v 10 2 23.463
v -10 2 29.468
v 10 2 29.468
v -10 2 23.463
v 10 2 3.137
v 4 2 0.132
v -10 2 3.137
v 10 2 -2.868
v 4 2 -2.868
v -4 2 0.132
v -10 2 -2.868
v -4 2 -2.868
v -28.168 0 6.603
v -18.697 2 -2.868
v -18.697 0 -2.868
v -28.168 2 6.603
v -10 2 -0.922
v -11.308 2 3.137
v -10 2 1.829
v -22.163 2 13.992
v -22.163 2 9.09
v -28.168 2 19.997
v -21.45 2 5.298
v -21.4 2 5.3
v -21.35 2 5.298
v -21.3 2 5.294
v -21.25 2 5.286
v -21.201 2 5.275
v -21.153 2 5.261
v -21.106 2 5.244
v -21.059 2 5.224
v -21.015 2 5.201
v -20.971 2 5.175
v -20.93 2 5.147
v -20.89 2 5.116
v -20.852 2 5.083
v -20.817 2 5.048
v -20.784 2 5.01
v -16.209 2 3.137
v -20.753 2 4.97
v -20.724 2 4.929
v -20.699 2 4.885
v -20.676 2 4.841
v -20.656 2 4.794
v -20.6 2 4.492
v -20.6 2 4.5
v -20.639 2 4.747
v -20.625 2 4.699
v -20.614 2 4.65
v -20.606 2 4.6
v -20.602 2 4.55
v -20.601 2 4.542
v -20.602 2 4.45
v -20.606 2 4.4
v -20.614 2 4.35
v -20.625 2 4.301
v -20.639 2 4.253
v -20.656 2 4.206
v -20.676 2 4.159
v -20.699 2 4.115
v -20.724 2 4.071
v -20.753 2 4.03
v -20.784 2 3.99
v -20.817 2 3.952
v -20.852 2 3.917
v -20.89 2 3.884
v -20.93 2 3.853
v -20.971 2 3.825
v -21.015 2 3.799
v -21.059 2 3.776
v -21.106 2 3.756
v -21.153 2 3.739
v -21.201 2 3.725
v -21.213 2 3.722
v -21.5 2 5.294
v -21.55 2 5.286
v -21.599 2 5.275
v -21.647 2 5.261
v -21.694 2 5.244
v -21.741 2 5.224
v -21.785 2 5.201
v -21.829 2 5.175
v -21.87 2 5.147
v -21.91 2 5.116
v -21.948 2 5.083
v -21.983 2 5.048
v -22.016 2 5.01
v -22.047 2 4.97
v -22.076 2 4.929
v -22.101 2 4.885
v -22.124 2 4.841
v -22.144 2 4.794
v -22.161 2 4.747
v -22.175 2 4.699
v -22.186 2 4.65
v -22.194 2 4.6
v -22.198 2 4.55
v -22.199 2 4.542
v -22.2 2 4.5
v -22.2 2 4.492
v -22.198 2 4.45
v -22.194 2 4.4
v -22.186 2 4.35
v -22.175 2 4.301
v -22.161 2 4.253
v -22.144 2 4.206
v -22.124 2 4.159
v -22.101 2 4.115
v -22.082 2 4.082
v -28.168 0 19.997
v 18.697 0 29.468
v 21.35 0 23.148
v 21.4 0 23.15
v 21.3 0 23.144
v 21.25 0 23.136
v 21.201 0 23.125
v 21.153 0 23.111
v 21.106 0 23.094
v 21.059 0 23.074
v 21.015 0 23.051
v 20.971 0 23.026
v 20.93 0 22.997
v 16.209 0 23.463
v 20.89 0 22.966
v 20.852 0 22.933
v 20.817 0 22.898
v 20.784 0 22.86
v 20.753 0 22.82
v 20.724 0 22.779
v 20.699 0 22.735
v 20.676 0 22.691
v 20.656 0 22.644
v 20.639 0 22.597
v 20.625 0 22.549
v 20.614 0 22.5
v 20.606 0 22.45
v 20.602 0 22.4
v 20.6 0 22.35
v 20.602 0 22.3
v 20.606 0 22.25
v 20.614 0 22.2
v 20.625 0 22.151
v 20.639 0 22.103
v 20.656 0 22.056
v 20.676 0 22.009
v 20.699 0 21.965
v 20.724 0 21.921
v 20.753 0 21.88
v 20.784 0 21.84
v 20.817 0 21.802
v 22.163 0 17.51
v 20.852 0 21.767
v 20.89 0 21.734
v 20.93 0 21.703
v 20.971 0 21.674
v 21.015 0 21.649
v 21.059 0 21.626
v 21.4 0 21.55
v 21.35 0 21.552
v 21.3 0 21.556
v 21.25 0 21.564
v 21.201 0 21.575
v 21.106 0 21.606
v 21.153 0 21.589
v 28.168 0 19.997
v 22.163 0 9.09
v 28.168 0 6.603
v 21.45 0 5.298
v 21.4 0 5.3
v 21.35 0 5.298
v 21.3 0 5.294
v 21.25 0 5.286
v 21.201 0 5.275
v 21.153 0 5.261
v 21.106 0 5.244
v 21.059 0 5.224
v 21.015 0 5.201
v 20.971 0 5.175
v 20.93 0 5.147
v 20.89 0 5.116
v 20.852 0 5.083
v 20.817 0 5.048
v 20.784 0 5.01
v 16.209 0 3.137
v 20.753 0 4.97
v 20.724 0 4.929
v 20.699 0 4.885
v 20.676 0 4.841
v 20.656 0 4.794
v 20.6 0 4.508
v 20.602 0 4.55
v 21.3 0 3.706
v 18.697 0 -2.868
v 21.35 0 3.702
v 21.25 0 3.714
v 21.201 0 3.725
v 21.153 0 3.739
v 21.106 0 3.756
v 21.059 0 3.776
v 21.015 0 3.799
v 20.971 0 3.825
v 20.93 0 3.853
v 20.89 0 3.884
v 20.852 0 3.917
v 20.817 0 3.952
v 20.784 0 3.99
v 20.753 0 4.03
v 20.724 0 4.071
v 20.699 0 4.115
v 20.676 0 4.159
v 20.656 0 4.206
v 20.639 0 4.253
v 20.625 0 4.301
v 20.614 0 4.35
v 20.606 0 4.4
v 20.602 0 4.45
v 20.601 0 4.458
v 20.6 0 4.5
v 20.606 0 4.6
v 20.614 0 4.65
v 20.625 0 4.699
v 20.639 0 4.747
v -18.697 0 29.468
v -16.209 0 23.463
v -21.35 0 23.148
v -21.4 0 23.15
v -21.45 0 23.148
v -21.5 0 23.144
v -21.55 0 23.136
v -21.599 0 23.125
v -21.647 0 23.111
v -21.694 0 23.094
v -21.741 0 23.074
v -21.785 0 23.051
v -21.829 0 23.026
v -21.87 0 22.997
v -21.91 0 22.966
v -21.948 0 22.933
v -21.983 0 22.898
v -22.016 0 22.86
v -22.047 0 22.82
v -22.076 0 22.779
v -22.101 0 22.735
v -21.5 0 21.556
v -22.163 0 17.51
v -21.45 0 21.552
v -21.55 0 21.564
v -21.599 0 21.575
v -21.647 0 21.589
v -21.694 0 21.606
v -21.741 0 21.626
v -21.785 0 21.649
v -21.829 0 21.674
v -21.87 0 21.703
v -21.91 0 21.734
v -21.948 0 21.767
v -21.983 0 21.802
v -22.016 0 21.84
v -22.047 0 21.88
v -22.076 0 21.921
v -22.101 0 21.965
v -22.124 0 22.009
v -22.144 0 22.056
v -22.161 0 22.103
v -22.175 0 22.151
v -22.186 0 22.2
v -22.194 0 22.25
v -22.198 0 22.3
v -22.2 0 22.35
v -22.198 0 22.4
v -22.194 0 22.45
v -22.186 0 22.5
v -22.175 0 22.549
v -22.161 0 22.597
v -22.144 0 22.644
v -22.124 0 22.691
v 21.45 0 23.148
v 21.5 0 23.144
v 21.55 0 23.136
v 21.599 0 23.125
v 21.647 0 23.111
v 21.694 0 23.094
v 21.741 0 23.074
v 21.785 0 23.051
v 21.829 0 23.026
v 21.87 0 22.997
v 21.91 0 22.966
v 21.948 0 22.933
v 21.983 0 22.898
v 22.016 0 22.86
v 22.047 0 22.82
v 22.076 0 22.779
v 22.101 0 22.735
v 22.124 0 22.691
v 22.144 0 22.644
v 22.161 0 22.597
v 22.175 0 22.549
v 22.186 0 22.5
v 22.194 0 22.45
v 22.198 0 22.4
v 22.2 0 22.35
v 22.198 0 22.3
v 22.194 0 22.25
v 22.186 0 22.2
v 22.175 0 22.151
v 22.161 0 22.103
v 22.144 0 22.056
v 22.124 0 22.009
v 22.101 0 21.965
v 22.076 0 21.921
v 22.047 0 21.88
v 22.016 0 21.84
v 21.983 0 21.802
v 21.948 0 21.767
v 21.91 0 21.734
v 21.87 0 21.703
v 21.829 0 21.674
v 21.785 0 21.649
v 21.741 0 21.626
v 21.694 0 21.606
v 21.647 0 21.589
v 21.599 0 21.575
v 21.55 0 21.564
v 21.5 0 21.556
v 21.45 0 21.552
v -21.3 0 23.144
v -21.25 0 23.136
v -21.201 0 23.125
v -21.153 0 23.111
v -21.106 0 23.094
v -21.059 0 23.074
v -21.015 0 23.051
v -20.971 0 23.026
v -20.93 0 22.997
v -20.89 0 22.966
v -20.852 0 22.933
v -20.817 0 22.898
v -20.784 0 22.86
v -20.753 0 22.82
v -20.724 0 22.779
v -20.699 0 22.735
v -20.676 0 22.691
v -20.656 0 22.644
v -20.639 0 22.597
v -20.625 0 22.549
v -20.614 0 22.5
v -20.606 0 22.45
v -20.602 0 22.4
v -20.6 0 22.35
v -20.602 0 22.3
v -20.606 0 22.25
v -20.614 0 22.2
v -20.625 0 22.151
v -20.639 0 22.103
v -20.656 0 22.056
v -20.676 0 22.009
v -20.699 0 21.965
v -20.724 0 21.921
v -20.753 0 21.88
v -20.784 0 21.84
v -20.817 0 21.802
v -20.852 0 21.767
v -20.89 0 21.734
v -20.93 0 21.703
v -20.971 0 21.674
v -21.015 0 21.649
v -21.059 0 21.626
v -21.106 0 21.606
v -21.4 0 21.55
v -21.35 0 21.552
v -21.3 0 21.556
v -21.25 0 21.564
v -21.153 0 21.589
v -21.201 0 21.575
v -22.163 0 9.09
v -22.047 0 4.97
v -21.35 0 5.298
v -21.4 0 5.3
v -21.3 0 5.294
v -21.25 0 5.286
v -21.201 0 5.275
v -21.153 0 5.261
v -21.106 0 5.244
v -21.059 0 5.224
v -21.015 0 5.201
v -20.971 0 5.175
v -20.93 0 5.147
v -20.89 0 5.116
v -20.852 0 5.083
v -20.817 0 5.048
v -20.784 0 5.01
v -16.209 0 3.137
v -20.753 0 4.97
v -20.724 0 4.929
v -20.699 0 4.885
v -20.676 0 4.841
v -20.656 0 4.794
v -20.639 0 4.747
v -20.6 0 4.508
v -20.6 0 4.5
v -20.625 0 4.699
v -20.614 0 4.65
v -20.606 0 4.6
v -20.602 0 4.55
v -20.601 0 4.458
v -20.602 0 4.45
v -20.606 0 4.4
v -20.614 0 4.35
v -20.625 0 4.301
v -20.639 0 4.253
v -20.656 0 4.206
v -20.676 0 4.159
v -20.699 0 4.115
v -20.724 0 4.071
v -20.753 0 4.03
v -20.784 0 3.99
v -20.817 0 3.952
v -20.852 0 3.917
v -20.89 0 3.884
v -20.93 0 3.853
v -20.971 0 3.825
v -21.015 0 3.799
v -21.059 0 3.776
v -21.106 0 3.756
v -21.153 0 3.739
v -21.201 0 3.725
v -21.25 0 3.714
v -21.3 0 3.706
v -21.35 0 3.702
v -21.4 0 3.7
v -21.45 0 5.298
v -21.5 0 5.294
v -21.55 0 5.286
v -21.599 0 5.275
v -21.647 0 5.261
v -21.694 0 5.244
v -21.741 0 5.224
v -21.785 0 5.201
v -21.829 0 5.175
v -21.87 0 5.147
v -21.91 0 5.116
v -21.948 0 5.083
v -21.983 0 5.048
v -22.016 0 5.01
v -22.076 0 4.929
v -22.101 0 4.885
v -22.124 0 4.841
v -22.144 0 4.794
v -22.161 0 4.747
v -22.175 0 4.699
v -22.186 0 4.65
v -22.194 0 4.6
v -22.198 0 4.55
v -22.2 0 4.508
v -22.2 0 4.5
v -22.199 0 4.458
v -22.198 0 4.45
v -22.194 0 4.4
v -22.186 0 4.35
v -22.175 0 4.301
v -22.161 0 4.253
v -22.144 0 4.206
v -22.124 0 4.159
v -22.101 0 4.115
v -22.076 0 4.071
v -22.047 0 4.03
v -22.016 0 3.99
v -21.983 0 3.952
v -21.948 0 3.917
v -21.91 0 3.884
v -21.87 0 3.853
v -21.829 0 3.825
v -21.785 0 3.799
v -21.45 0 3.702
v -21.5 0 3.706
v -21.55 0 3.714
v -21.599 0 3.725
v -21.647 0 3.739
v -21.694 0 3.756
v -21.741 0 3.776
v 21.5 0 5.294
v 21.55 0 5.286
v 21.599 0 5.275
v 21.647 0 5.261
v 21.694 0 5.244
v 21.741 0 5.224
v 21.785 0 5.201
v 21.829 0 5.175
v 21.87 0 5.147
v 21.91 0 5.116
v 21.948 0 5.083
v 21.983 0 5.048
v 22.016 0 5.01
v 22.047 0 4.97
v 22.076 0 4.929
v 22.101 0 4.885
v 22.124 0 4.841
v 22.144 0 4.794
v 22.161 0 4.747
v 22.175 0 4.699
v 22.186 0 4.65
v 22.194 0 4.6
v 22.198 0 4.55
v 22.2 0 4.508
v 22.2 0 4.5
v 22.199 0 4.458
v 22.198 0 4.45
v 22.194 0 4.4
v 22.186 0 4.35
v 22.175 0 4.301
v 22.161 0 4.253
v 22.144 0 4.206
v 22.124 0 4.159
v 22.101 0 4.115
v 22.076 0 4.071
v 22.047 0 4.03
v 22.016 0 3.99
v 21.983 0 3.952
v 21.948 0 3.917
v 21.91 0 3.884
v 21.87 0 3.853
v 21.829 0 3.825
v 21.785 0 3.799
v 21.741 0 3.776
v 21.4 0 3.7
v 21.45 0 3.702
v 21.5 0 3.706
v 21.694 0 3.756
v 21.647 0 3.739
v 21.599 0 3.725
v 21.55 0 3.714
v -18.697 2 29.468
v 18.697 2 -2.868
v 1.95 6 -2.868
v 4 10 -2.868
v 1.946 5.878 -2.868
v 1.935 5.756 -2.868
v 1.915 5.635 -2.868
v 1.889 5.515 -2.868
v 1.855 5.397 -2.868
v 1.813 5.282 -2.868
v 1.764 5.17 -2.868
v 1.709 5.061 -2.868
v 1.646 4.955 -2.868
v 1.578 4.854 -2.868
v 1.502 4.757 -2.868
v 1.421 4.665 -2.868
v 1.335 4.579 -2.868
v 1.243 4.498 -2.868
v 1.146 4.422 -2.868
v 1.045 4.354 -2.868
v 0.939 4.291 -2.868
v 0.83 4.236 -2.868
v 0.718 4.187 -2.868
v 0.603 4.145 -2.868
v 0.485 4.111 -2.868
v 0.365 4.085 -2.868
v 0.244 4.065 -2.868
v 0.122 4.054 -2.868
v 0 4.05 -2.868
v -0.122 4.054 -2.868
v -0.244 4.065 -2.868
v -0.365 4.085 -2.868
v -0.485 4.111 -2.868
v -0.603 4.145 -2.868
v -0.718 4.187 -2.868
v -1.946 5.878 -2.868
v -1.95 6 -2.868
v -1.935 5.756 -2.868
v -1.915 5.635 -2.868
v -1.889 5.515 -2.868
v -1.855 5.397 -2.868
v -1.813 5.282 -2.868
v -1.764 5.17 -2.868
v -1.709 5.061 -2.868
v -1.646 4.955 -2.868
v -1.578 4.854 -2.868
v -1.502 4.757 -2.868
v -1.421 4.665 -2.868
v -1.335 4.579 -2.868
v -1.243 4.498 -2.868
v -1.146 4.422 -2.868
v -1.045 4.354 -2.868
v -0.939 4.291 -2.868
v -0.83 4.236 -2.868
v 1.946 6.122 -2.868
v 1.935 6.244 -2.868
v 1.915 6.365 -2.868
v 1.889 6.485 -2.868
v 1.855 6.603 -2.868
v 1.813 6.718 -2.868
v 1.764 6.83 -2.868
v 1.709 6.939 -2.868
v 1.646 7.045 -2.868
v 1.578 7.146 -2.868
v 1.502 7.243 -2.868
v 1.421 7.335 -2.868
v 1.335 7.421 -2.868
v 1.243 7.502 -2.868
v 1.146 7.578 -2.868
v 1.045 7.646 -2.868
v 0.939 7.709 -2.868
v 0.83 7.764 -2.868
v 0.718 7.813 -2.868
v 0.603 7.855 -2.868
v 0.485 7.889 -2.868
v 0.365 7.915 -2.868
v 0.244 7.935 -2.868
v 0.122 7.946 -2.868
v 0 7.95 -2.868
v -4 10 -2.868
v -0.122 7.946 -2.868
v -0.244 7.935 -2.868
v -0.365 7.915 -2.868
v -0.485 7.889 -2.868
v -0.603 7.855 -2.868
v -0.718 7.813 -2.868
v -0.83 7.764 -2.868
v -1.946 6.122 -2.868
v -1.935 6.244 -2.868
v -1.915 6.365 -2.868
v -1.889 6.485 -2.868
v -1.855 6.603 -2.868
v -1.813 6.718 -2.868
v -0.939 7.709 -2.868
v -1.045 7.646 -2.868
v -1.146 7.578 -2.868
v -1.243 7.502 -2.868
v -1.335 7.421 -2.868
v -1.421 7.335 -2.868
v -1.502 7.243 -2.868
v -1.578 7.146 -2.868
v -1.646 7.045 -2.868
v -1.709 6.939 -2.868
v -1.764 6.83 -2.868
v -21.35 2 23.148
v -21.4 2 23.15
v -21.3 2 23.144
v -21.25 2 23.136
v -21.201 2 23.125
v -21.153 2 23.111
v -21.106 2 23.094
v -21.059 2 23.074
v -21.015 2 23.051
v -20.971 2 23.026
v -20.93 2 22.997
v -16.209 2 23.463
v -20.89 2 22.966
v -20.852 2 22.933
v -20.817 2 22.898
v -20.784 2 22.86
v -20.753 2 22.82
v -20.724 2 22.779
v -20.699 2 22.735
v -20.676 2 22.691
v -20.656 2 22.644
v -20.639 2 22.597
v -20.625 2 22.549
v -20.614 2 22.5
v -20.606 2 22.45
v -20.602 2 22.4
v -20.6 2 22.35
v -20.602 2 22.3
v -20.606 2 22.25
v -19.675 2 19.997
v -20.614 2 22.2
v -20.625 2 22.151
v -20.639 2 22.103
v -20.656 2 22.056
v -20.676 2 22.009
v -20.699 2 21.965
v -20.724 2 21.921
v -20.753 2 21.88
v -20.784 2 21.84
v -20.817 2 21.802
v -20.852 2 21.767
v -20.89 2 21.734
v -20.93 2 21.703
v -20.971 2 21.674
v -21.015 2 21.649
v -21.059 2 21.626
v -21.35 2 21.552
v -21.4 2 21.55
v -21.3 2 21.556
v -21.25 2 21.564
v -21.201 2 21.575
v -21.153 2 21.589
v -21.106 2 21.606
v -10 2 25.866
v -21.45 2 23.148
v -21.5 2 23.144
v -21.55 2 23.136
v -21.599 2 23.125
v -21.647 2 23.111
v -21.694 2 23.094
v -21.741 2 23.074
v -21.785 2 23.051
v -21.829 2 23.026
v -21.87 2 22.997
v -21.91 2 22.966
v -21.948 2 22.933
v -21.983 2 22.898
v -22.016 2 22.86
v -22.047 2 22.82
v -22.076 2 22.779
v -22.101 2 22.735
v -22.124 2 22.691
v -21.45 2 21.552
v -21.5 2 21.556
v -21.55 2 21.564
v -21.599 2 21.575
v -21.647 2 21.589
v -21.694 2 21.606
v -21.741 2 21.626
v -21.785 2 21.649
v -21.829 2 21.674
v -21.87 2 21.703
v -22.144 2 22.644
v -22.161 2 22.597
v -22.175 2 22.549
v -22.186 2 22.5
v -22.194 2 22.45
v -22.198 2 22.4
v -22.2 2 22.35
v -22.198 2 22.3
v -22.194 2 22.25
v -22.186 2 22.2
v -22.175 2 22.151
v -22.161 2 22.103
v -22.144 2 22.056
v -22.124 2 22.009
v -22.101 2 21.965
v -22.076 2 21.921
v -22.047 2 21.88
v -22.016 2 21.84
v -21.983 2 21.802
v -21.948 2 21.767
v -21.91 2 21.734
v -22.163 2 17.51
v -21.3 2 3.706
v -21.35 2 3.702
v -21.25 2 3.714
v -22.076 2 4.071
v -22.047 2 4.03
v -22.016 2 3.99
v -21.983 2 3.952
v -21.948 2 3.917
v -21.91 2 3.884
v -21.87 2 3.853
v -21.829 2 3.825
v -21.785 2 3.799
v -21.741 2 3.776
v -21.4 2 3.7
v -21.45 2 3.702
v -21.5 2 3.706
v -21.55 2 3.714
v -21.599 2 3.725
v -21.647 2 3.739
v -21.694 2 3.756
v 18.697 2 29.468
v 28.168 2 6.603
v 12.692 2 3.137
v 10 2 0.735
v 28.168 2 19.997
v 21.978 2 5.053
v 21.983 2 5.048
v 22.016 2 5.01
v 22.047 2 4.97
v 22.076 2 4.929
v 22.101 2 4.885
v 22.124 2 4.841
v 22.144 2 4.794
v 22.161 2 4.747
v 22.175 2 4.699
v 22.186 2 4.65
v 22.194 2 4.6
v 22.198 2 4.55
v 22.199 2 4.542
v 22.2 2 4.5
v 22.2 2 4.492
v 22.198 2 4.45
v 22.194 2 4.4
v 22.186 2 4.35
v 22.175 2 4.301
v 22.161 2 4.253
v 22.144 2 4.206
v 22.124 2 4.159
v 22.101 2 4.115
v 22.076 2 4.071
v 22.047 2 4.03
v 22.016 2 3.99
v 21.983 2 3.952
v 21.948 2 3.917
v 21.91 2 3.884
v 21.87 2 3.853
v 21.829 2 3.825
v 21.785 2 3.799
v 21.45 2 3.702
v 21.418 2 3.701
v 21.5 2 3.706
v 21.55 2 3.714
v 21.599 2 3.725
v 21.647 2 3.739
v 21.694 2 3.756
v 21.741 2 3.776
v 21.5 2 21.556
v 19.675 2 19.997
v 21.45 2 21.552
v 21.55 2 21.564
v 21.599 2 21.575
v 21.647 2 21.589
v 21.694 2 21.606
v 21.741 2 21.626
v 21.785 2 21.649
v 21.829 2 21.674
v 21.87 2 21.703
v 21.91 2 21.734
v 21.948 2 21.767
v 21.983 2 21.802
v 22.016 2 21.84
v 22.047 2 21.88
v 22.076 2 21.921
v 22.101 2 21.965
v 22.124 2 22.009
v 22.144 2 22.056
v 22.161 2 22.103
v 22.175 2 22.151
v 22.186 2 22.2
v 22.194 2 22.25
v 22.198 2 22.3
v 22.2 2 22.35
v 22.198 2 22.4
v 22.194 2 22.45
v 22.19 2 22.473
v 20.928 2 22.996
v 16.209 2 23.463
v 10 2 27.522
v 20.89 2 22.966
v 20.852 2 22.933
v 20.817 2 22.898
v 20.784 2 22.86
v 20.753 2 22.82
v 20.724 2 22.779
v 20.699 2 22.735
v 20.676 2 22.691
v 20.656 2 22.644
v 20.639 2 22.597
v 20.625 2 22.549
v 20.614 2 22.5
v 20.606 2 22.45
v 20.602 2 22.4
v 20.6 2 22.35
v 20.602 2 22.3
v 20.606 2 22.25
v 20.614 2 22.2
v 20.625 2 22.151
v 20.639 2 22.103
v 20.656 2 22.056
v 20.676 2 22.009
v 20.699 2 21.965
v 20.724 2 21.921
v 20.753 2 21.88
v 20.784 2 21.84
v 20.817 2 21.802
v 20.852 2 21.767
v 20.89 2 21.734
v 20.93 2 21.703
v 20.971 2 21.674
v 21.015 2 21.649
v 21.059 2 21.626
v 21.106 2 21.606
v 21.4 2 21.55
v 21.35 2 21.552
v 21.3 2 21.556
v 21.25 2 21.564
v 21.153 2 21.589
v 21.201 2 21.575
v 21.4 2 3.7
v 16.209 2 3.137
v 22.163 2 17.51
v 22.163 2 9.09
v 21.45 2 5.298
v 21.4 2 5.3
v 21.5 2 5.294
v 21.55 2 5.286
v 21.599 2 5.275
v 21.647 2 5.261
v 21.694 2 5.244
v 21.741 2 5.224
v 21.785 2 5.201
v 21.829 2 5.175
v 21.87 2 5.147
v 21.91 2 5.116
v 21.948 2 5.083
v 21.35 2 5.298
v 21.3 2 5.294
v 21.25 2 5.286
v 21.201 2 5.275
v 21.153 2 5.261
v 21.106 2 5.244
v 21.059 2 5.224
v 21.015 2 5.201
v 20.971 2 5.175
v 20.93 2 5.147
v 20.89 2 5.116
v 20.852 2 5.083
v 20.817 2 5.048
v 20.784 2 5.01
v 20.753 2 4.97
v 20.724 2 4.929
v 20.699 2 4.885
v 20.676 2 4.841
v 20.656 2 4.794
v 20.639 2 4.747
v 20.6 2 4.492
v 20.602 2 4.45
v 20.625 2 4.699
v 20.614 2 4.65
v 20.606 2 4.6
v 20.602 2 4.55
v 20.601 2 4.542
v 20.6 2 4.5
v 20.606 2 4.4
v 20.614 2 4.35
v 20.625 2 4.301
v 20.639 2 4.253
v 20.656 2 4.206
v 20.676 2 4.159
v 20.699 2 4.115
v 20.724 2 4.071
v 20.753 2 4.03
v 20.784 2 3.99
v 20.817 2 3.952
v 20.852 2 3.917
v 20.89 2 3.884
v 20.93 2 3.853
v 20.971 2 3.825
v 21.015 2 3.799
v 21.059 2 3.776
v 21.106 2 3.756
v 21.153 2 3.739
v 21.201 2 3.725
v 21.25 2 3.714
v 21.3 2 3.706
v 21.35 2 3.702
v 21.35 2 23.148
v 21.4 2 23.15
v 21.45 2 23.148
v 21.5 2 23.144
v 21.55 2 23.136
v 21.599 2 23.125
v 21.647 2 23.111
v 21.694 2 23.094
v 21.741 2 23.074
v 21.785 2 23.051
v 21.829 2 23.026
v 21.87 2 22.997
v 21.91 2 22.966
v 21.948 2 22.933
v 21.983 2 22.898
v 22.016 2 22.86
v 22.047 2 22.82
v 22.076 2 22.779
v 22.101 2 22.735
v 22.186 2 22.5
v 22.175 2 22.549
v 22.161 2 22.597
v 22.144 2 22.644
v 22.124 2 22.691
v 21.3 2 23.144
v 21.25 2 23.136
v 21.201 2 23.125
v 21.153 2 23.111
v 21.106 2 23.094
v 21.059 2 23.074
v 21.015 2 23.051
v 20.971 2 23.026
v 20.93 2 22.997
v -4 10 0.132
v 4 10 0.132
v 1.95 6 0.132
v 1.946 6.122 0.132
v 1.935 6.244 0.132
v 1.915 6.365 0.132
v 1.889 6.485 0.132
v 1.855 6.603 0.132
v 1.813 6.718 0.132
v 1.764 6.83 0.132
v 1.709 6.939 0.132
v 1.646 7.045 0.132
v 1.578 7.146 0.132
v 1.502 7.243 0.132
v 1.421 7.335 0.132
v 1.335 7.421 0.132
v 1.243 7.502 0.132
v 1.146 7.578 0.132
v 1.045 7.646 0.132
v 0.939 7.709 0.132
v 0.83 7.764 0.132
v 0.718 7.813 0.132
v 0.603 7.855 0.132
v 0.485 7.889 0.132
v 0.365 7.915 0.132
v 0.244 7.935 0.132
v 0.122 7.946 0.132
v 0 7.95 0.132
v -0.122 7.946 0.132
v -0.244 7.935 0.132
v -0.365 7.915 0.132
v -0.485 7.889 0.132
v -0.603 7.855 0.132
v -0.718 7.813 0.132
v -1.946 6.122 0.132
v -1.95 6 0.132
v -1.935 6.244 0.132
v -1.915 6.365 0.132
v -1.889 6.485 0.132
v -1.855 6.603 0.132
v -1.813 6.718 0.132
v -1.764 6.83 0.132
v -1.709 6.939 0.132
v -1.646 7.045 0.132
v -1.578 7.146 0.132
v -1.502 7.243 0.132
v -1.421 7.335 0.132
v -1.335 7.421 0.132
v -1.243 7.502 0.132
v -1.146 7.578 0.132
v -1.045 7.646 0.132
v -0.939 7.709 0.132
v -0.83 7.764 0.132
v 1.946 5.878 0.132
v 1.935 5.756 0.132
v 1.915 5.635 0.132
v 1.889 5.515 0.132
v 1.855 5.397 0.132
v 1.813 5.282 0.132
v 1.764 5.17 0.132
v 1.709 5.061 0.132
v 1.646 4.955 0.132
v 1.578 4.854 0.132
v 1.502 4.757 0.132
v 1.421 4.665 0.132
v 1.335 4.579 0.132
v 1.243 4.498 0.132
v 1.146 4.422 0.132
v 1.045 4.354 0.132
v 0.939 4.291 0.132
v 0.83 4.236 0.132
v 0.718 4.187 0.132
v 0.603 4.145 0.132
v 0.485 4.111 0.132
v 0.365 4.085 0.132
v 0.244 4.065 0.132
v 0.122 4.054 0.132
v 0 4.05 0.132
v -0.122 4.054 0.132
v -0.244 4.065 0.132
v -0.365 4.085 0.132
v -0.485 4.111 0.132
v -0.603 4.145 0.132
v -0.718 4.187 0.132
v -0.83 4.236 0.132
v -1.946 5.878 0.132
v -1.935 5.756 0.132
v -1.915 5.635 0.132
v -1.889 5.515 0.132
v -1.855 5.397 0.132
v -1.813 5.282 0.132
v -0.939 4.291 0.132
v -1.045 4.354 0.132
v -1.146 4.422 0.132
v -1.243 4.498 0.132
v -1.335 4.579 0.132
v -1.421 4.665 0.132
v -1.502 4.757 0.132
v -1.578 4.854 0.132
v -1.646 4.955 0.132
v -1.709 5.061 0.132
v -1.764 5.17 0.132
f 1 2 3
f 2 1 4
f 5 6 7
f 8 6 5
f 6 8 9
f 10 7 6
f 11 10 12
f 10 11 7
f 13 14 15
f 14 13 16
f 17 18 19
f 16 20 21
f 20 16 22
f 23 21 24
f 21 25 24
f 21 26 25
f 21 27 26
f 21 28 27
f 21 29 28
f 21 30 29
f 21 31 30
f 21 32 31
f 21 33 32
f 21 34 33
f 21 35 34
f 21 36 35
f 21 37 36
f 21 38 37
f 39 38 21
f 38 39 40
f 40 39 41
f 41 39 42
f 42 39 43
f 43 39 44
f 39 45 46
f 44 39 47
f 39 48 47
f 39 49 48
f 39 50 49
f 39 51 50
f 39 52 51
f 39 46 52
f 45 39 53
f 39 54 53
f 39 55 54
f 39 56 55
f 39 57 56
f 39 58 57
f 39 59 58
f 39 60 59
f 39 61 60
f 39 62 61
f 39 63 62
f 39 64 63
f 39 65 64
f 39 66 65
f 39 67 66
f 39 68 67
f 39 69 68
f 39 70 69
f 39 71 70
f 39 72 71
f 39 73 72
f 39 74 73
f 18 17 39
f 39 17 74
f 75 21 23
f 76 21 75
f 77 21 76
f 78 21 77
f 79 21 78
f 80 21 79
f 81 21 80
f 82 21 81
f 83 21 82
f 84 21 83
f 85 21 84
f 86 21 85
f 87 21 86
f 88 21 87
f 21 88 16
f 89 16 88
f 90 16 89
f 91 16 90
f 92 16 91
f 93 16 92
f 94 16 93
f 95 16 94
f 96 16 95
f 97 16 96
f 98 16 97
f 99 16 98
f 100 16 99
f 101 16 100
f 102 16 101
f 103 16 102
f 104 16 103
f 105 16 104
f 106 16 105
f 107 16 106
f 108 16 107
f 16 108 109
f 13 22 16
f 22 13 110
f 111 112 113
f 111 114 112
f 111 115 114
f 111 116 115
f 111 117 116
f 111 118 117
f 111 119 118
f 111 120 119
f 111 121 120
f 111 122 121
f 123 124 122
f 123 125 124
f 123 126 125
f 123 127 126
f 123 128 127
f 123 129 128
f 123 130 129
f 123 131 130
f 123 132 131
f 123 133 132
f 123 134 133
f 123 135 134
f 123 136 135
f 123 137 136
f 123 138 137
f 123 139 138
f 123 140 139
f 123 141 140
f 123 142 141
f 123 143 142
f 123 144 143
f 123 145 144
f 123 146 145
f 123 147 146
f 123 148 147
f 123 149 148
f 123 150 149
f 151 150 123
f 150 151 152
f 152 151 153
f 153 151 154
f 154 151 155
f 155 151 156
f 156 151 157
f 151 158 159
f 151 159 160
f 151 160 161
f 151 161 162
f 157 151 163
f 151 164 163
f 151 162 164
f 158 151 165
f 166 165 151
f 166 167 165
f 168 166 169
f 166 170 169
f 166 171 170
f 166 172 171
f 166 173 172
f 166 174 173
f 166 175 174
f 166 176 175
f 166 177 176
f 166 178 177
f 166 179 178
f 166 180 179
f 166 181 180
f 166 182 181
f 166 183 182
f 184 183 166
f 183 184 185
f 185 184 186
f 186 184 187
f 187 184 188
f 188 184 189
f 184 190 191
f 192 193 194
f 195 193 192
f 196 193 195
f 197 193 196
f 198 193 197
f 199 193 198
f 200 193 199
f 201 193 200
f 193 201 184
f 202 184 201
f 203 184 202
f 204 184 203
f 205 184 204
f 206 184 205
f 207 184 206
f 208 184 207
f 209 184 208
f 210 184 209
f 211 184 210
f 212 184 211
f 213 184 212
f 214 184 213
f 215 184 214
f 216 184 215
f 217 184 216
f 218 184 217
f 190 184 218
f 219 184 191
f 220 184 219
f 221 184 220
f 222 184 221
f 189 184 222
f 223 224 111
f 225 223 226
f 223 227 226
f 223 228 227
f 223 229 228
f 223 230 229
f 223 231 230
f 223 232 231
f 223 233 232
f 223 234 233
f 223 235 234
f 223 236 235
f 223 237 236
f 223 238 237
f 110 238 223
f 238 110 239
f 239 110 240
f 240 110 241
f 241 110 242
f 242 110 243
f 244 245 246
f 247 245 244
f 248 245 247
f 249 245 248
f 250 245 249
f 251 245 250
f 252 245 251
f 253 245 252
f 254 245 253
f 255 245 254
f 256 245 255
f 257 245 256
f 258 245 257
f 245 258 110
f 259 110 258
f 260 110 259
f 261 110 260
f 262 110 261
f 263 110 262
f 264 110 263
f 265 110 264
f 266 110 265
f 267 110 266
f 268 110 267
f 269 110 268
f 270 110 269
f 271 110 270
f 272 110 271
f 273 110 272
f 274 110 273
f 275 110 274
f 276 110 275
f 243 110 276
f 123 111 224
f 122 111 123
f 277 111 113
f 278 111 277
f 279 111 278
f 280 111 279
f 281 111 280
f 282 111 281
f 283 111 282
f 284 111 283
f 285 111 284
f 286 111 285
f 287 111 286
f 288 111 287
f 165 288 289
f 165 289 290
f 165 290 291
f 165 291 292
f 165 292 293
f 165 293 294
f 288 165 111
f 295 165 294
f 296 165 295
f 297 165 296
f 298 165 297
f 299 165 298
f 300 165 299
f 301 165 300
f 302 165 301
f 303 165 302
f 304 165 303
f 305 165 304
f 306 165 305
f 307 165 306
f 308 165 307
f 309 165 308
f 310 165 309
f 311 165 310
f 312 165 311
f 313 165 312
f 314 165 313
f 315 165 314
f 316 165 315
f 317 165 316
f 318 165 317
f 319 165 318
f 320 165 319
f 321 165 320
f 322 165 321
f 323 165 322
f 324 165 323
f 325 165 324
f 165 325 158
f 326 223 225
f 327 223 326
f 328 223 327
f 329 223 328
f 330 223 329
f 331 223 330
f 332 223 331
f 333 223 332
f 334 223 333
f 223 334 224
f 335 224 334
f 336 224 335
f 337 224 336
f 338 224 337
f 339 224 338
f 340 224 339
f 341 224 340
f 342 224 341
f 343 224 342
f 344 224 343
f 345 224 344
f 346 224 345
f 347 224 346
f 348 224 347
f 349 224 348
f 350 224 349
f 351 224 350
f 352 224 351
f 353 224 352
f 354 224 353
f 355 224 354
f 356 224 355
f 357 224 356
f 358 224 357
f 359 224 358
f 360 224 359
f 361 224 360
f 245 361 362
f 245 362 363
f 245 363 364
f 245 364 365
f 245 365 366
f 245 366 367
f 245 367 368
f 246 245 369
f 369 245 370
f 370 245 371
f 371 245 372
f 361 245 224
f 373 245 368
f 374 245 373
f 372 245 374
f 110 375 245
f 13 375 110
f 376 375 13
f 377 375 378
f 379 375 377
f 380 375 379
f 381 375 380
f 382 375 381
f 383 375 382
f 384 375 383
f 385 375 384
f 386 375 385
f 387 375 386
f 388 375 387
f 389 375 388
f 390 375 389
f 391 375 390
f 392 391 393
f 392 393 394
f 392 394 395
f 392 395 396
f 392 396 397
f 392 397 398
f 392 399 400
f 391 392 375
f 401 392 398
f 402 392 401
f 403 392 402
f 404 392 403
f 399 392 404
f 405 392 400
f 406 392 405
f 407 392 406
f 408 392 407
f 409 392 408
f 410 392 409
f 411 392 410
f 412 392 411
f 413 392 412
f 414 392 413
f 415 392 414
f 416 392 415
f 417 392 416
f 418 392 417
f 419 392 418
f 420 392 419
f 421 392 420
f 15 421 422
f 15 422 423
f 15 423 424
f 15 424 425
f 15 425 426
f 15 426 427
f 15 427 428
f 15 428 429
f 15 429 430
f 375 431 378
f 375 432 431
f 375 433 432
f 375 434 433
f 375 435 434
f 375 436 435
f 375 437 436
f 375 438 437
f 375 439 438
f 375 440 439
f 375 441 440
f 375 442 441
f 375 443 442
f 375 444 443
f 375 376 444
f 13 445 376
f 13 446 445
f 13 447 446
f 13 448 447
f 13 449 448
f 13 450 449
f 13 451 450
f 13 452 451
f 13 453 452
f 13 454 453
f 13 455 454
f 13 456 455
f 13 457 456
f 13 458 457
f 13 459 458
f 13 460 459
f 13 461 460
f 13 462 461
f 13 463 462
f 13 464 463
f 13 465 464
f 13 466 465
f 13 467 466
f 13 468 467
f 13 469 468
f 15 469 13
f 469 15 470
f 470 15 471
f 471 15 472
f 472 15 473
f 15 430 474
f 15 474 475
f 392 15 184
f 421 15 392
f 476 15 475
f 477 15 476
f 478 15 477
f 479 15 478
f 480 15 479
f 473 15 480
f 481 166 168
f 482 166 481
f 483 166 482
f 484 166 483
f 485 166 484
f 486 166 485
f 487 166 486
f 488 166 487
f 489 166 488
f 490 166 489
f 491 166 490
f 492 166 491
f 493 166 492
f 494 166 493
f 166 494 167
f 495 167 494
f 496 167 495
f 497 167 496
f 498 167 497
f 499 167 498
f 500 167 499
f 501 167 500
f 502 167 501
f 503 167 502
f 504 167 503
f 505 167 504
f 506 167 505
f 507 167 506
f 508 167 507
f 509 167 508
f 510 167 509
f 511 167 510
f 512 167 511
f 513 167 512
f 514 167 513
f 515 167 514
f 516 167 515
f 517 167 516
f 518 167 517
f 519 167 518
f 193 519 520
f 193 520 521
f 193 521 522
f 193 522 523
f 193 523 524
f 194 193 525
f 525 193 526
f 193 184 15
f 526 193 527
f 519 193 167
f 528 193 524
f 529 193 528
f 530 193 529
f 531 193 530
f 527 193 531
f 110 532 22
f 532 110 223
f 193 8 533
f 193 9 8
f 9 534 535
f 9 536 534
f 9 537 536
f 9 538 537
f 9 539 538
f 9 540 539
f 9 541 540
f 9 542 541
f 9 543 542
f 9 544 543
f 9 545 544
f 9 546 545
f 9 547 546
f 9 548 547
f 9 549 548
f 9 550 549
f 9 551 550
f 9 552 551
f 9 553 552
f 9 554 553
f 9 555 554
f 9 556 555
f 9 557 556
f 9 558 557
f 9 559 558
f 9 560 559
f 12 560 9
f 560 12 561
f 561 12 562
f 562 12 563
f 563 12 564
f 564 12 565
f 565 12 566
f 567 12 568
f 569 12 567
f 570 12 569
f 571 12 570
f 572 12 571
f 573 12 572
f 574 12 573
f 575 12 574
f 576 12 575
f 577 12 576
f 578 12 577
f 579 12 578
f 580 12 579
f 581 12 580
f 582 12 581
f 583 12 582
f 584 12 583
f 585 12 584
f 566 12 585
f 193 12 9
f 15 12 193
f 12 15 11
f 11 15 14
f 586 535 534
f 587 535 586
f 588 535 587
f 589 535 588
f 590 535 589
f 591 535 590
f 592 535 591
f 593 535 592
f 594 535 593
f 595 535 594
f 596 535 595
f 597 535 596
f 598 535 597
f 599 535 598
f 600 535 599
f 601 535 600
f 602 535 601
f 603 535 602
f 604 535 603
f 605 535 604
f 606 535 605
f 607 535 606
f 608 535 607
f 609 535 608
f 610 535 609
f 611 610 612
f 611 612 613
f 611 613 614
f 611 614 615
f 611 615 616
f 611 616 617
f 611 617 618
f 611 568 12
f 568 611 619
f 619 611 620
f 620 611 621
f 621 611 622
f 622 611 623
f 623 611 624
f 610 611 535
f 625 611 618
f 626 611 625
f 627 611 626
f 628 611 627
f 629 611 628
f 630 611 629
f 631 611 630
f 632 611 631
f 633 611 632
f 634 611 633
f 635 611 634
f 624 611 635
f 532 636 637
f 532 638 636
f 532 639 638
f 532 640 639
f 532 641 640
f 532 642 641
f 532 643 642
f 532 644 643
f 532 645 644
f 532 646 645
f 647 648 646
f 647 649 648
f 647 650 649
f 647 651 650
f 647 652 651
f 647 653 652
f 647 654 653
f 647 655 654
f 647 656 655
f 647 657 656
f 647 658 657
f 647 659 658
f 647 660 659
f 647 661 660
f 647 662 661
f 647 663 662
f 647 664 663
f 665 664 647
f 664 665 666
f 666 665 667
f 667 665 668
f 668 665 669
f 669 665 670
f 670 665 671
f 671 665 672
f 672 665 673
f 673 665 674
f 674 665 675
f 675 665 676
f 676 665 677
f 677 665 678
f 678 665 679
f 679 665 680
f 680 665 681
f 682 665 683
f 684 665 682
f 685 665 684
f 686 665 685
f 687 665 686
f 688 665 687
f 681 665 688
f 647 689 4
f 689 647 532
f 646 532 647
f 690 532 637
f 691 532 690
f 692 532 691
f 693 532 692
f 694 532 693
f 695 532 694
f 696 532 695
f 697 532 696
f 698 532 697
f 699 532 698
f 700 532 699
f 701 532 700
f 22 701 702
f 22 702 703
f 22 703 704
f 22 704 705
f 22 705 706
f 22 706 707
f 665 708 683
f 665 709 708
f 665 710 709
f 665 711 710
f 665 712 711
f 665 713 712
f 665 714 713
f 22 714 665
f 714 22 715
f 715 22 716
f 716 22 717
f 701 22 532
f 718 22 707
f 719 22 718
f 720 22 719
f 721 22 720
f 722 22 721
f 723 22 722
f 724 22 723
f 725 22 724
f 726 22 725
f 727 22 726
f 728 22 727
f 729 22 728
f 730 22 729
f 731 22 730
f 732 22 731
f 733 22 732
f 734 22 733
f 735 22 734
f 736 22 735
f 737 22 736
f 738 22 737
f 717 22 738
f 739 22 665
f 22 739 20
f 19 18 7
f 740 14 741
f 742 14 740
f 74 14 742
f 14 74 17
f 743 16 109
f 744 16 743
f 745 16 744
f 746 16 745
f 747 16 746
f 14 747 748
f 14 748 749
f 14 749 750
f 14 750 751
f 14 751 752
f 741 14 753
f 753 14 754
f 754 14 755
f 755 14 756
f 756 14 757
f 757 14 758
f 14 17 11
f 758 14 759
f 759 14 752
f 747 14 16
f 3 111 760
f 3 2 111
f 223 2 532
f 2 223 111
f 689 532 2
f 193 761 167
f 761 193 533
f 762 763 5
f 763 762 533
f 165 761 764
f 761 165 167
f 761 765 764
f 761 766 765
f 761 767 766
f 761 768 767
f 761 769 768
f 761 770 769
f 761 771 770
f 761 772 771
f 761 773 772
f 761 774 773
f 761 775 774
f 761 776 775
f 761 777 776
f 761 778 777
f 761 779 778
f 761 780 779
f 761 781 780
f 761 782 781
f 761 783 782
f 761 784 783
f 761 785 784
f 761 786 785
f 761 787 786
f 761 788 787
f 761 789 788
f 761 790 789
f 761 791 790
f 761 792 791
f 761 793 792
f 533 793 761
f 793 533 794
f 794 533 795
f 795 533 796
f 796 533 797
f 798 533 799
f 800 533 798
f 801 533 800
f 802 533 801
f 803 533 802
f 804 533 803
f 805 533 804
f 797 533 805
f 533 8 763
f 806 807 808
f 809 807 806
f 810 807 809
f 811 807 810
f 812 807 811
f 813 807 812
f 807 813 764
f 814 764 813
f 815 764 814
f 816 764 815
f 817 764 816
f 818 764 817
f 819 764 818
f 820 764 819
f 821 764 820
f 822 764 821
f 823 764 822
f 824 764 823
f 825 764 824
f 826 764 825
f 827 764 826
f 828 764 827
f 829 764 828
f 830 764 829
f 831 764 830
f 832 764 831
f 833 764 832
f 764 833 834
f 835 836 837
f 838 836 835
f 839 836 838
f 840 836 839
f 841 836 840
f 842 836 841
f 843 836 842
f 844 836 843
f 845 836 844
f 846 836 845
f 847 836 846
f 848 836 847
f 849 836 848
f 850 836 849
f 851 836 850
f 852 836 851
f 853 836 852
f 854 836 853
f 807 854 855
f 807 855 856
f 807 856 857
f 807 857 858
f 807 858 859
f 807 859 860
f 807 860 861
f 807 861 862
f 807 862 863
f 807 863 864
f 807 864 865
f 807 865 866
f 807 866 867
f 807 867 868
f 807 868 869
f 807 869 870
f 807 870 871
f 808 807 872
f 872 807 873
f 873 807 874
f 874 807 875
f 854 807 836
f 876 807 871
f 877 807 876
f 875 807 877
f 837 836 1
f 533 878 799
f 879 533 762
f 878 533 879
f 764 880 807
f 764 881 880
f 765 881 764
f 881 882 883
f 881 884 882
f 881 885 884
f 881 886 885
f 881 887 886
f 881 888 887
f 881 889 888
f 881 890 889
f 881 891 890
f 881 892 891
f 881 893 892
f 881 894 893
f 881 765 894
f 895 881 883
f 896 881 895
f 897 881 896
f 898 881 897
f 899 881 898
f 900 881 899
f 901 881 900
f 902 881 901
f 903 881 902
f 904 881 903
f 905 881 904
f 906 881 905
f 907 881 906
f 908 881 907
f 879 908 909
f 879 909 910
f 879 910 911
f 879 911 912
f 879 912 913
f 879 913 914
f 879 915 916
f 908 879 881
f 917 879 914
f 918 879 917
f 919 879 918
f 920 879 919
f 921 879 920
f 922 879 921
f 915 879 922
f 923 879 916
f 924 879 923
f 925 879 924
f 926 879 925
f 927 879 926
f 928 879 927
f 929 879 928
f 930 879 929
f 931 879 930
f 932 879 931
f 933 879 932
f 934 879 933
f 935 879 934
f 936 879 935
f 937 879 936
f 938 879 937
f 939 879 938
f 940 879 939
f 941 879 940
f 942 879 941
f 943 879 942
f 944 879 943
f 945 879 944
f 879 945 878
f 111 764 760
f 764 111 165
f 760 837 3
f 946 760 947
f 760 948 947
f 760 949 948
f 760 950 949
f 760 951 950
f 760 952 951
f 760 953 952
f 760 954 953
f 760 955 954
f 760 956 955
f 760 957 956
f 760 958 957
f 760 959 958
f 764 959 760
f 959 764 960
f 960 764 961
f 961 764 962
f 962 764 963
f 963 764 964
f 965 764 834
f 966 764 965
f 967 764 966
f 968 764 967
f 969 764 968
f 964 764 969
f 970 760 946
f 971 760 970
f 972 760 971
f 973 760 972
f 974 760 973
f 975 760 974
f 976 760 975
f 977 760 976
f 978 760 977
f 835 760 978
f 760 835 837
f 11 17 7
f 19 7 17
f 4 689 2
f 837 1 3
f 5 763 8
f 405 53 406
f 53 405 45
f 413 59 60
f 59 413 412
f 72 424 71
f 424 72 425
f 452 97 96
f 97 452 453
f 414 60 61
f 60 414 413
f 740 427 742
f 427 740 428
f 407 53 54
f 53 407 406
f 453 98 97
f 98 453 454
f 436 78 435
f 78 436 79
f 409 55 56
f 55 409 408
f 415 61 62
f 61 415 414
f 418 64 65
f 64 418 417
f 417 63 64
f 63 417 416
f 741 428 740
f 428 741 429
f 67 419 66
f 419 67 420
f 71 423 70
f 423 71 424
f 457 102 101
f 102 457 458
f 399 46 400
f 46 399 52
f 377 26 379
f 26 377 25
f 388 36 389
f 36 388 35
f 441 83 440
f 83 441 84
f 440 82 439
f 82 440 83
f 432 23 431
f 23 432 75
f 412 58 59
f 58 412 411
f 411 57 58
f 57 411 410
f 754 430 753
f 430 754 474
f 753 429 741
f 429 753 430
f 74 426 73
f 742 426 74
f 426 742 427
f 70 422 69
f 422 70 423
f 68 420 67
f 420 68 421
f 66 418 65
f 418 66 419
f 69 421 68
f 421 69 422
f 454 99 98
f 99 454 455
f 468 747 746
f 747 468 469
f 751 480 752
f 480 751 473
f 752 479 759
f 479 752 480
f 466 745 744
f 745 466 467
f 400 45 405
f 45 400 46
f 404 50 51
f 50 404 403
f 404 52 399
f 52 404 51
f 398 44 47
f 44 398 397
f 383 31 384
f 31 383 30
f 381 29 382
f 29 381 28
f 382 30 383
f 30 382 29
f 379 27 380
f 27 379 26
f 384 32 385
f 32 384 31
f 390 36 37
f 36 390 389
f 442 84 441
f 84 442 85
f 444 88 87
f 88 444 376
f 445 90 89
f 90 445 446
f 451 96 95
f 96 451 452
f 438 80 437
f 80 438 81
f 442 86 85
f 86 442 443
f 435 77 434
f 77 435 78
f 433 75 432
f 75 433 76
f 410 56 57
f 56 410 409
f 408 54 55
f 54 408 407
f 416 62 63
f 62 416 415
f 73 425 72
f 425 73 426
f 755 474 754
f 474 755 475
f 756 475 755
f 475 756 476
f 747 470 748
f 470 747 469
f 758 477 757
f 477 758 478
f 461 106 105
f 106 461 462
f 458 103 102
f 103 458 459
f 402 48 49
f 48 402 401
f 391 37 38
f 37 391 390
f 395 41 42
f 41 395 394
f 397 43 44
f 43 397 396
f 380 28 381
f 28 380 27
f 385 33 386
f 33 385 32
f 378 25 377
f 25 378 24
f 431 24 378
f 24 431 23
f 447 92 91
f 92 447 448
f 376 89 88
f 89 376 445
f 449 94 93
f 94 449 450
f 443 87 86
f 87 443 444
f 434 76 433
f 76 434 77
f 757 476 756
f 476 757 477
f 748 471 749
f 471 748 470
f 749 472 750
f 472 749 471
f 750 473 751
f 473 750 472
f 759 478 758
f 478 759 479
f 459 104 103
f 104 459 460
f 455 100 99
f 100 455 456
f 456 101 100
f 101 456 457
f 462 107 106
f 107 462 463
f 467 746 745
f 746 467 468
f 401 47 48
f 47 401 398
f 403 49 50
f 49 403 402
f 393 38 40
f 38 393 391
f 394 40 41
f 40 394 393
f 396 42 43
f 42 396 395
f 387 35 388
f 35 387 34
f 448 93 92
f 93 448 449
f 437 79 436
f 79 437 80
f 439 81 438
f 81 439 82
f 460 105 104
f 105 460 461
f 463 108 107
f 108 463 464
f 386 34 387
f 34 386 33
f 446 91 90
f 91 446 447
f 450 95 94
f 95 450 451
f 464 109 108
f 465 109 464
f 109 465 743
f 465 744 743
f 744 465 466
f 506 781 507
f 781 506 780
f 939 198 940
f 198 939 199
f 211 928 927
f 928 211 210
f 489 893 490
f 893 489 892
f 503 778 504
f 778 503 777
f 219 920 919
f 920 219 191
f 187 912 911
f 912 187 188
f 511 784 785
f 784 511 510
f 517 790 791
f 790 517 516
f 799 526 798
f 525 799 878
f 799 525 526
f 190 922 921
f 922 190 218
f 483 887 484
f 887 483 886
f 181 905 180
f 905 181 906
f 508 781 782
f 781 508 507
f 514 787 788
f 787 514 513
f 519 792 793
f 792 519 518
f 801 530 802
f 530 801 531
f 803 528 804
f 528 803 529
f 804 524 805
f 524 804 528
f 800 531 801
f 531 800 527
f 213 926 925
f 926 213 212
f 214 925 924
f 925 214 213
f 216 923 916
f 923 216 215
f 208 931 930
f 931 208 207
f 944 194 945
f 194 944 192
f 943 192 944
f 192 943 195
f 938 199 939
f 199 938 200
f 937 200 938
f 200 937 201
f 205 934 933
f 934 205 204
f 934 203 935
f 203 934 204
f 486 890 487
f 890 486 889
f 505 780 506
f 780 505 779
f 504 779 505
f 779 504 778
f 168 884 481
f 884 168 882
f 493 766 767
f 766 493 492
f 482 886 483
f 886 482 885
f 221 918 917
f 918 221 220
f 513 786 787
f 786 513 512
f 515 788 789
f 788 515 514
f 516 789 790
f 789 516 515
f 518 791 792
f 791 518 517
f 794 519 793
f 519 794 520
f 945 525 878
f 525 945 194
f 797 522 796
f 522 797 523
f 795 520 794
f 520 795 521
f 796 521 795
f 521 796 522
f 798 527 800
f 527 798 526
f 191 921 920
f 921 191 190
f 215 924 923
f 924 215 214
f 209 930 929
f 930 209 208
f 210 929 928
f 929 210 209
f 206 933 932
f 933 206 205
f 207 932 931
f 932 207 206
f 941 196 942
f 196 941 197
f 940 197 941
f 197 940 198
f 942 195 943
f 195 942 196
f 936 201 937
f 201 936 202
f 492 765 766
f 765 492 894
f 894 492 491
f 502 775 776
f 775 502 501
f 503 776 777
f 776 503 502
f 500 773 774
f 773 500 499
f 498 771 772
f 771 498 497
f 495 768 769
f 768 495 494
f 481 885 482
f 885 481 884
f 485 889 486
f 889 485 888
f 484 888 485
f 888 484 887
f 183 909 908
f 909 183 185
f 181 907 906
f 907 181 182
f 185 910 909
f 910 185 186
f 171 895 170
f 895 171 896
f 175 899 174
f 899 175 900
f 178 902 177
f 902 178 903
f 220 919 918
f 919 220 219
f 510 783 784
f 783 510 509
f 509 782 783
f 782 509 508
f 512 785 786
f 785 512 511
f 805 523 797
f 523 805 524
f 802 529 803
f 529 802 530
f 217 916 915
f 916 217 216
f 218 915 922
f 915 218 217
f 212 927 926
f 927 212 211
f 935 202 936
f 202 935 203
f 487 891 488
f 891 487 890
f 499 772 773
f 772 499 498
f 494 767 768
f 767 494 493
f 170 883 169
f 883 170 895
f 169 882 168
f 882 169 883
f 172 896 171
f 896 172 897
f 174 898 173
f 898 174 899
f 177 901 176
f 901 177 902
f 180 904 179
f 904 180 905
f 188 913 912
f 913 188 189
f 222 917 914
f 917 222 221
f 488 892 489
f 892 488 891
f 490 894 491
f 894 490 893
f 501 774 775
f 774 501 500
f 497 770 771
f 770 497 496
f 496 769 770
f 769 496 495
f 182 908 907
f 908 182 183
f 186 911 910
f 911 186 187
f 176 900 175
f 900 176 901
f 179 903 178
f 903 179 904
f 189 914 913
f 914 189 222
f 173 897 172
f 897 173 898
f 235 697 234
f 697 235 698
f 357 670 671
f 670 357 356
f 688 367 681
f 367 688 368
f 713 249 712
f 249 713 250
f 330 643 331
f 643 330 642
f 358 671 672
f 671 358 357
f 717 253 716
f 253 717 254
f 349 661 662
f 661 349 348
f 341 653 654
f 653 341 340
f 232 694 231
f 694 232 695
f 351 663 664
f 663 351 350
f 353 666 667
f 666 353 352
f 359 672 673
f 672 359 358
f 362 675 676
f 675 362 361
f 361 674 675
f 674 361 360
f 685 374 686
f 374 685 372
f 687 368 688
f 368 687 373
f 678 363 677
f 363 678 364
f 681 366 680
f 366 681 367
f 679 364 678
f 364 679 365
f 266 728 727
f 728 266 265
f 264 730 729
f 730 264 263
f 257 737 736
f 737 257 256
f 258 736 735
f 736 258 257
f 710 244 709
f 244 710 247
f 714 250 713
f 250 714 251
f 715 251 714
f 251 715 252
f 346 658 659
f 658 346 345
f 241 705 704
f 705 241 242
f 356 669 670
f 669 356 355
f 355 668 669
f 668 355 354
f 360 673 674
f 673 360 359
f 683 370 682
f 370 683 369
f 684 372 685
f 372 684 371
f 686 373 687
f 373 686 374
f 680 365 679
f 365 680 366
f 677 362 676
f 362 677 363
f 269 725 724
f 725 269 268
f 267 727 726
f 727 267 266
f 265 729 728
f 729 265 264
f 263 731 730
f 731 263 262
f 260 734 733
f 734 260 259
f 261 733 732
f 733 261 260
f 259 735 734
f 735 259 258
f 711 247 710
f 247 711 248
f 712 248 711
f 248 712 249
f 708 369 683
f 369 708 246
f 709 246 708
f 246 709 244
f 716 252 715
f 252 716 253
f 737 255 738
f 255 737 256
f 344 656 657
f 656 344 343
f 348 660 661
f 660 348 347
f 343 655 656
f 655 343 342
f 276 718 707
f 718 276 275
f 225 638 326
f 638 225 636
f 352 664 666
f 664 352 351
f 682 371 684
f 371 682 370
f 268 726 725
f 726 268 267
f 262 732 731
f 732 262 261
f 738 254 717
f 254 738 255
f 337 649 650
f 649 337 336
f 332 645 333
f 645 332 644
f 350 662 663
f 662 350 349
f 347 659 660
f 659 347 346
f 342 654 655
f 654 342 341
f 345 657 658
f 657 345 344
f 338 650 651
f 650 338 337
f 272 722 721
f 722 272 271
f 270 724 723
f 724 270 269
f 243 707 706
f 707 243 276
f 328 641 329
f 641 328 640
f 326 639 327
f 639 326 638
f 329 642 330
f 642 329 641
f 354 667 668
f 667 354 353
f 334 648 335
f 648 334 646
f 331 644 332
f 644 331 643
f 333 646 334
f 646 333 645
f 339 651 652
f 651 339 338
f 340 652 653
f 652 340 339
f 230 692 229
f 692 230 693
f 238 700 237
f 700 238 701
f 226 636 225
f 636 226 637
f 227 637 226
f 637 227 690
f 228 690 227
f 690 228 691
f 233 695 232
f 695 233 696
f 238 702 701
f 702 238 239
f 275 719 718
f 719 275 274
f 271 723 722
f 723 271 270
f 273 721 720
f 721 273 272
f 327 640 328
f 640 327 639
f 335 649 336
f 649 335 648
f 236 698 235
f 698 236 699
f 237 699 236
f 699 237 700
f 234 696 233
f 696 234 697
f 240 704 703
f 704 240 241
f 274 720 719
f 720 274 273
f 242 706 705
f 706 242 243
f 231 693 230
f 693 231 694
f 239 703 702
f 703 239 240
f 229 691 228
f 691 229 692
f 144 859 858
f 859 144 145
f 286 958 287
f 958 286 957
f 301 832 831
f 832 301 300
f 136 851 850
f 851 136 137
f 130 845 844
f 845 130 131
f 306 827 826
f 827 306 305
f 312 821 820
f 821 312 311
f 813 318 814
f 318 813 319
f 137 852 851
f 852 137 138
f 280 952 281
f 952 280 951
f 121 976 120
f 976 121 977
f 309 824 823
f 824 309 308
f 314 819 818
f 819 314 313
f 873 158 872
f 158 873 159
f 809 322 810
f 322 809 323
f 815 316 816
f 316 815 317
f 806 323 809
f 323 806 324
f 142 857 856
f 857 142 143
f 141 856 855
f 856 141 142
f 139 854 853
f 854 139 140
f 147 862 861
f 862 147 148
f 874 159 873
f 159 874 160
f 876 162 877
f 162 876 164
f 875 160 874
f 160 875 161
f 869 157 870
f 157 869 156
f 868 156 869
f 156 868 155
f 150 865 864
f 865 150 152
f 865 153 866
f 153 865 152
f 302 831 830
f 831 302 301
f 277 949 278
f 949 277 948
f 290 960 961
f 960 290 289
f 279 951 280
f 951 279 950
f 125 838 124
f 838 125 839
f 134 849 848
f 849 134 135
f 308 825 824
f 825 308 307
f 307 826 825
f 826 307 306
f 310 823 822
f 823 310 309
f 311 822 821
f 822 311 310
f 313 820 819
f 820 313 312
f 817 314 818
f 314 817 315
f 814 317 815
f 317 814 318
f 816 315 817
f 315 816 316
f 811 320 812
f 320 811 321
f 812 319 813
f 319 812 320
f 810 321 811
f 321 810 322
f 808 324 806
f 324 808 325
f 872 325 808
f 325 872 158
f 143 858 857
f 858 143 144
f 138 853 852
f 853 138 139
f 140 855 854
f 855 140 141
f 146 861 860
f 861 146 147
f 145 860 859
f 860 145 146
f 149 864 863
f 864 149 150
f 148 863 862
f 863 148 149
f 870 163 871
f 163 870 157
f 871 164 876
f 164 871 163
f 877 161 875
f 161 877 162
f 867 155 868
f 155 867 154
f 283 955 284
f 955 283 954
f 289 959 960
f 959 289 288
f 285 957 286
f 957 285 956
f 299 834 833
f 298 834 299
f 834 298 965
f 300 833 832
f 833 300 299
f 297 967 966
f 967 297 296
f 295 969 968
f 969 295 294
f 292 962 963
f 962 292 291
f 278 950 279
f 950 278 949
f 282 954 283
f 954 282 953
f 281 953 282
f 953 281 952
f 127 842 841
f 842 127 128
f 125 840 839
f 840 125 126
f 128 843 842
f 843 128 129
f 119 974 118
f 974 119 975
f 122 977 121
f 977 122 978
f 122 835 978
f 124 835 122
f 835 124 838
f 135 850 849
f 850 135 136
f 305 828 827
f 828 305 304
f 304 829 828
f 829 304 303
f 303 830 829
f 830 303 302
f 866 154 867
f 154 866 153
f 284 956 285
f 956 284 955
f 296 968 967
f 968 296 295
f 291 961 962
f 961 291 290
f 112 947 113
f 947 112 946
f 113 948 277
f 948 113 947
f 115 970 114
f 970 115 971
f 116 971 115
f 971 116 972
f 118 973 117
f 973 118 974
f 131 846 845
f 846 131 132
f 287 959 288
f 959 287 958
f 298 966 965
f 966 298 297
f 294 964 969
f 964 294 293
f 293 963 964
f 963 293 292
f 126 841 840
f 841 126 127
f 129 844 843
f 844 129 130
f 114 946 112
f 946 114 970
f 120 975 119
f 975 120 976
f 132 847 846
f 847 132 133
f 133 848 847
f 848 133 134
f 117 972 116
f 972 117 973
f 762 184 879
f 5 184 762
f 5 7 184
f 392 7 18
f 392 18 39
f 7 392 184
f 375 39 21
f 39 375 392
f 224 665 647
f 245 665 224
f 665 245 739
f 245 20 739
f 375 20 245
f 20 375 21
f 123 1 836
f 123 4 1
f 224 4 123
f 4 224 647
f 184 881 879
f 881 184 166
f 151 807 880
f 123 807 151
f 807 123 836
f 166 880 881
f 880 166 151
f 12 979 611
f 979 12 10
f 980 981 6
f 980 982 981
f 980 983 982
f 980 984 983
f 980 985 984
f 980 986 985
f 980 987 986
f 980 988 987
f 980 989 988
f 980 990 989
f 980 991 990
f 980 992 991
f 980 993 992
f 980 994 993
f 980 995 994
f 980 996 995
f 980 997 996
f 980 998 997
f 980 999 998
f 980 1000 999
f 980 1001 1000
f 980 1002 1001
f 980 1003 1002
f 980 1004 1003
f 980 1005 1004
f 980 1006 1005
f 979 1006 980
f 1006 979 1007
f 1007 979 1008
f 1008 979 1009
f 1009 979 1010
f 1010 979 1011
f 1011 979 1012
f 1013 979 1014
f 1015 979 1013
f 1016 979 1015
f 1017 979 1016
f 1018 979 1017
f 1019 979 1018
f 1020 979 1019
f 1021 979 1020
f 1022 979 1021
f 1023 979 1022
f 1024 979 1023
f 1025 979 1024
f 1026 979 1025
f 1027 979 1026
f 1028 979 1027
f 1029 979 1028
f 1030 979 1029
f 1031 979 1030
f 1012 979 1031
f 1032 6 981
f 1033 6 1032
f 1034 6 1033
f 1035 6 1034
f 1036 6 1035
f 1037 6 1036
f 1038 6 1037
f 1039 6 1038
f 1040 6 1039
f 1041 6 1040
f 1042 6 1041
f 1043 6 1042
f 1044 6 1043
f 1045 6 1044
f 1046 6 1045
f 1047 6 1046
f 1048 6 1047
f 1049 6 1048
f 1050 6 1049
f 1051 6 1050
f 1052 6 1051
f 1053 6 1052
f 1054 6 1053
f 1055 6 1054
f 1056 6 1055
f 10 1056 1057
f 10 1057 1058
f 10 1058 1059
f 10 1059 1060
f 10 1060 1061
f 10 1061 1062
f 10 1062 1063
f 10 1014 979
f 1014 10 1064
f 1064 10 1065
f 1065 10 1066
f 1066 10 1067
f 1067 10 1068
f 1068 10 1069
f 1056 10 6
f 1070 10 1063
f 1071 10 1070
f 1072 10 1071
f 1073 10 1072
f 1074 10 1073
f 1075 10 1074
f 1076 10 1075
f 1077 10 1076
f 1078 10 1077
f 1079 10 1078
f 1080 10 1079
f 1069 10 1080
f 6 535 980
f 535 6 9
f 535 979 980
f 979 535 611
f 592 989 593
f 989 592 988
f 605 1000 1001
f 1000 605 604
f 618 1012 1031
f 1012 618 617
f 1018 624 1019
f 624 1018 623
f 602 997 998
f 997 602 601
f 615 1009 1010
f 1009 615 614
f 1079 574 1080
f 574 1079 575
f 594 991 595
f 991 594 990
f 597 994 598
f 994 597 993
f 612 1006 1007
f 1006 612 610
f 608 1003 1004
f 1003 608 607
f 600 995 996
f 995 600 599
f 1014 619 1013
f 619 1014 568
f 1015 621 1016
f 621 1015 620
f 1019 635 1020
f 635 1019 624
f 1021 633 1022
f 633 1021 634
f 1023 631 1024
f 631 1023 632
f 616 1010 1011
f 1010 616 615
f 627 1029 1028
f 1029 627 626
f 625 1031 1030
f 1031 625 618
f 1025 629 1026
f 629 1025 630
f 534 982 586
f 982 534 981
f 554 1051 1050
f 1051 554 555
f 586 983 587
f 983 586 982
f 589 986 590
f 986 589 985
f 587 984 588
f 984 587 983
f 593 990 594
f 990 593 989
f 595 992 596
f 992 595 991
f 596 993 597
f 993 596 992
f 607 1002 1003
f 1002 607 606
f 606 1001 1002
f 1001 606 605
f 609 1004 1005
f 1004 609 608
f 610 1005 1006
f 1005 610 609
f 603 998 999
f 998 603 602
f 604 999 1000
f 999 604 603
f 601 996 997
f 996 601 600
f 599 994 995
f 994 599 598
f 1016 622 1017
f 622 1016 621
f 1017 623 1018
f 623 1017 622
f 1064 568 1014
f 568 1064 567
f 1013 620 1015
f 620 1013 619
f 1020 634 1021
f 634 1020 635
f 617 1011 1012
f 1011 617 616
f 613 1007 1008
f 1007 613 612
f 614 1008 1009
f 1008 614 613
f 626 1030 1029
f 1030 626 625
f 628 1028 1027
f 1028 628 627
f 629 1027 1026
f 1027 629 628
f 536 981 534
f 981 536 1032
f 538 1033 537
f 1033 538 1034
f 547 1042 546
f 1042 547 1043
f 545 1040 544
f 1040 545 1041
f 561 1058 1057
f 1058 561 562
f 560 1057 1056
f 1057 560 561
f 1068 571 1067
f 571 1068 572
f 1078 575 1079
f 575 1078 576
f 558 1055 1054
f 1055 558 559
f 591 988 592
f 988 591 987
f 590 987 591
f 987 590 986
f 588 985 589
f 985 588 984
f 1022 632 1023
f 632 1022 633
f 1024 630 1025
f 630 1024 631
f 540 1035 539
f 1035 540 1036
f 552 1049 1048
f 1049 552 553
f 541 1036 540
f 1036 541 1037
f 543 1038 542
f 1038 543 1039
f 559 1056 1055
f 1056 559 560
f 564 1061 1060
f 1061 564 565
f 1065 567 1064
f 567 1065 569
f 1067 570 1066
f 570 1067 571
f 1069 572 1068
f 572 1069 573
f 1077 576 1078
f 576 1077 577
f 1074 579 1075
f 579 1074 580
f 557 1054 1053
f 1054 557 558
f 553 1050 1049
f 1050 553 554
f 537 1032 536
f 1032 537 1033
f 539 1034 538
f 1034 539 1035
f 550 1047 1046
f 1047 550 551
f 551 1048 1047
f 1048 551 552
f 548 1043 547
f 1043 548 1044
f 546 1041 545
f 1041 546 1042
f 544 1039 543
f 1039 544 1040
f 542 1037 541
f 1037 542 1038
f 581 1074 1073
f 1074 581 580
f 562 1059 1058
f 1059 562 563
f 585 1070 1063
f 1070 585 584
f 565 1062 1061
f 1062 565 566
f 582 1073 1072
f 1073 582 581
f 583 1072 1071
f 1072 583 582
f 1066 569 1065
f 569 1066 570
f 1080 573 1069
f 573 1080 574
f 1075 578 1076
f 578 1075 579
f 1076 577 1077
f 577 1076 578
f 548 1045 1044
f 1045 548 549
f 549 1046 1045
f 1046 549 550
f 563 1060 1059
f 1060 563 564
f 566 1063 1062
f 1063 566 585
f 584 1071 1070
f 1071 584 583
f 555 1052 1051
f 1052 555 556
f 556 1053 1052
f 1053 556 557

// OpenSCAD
// file: Holes.scad
$fn = 100;
high_of_hole = 1;

//hole_for_base (high_of_hole);
//hole_for_screw_M2 (high_of_hole);
//hole_for_screw_M2_5 (high_of_hole);
//hole_for_screw_M3 (high_of_hole);
//hole_for_shaft (high_of_hole);

module hole_for_base (high_of_hole) {
    cylinder (h = high_of_hole, d = 8);
}

module hole_for_screw_M1_2 (high_of_hole) {
    cylinder (h = high_of_hole, d = 1.6);
}

module hole_for_screw_M2 (high_of_hole) {
    cylinder (h = high_of_hole, d = 2.8);
}

module hole_for_screw_M2_5 (high_of_hole) {
    cylinder (h = high_of_hole, d = 3.3);
}

module hole_for_screw_M3 (high_of_hole) {
    cylinder (h = high_of_hole, d = 3.9);
}

module hole_for_shaft (high_of_hole) {
    cylinder (h = high_of_hole, d = 4.9);
}
// main file
use <Holes.scad>;

$fn = 30;
maximum_diameter = 35;
minimum_diameter = 22;

hub_for_ultrasonic_sensor ();

module hub_for_ultrasonic_sensor () {
    color ([1, 1, 0, 1]) {
        difference () {
            union () {
                translate ([-12, 0, 13.3]) {
                    rotate ([270, 22.5, 0]) {
                        cylinder (h = 2, d = maximum_diameter,
                                  $fn = 8);
                    }
                }
                translate ([12, 0, 13.3]) {
                    rotate ([270, 22.5, 0]) {
                        cylinder (h = 2, d = maximum_diameter,
                                  $fn = 8);
                    }
                }
                translate ([-10, 0, 13.3 - maximum_diameter / 2 *
                            cos (22.5)]) {
                    cube ([20, 2, maximum_diameter * cos (22.5)]);
                }
            }
            translate ([-12, -0.5, 13.3]) {
                rotate ([270, 22.5, 0]) {
                    cylinder (h = 3, d = minimum_diameter, $fn = 8);
                }
            }
            translate ([12, -0.5, 13.3]) {
                rotate ([270, 22.5, 0]) {
                    cylinder (h = 3, d = minimum_diameter, $fn = 8);
                }
            }
            translate ([-10, -0.5, 13.3 - minimum_diameter / 2 *
                        cos (22.5)]) {
                cube ([20, 3, minimum_diameter * cos (22.5)]);
            }
            translate ([0, 0, 3]) {
                translate ([-21.4, -0.5, 1.5]) {
                    rotate ([270, 0, 0]) {
                        hole_for_screw_M1_2 (3);
                    }
                }
                translate ([21.4, -0.5, 1.5]) {
                    rotate ([270, 0, 0]) {
                        hole_for_screw_M1_2 (3);
                    }
                }
                translate ([-21.4, -0.5, 19.35]) {
                    rotate ([270, 0, 0]) {
                        hole_for_screw_M1_2 (3);
                    }
                }
                translate ([21.4, -0.5, 19.35]) {
                    rotate ([270, 0, 0]) {
                        hole_for_screw_M1_2 (3);
                    }
                }
            }
        }
        difference () {
            translate ([-4, 0, 13.3 - maximum_diameter / 2 *
                        cos (22.5)]) {
                cube ([8, 10, 3]);
            }
            translate ([0, 6, 12.8 - maximum_diameter / 2 *
                        cos (22.5)]) {
                hole_for_screw_M3 (4);
            }
        }
    }
}
